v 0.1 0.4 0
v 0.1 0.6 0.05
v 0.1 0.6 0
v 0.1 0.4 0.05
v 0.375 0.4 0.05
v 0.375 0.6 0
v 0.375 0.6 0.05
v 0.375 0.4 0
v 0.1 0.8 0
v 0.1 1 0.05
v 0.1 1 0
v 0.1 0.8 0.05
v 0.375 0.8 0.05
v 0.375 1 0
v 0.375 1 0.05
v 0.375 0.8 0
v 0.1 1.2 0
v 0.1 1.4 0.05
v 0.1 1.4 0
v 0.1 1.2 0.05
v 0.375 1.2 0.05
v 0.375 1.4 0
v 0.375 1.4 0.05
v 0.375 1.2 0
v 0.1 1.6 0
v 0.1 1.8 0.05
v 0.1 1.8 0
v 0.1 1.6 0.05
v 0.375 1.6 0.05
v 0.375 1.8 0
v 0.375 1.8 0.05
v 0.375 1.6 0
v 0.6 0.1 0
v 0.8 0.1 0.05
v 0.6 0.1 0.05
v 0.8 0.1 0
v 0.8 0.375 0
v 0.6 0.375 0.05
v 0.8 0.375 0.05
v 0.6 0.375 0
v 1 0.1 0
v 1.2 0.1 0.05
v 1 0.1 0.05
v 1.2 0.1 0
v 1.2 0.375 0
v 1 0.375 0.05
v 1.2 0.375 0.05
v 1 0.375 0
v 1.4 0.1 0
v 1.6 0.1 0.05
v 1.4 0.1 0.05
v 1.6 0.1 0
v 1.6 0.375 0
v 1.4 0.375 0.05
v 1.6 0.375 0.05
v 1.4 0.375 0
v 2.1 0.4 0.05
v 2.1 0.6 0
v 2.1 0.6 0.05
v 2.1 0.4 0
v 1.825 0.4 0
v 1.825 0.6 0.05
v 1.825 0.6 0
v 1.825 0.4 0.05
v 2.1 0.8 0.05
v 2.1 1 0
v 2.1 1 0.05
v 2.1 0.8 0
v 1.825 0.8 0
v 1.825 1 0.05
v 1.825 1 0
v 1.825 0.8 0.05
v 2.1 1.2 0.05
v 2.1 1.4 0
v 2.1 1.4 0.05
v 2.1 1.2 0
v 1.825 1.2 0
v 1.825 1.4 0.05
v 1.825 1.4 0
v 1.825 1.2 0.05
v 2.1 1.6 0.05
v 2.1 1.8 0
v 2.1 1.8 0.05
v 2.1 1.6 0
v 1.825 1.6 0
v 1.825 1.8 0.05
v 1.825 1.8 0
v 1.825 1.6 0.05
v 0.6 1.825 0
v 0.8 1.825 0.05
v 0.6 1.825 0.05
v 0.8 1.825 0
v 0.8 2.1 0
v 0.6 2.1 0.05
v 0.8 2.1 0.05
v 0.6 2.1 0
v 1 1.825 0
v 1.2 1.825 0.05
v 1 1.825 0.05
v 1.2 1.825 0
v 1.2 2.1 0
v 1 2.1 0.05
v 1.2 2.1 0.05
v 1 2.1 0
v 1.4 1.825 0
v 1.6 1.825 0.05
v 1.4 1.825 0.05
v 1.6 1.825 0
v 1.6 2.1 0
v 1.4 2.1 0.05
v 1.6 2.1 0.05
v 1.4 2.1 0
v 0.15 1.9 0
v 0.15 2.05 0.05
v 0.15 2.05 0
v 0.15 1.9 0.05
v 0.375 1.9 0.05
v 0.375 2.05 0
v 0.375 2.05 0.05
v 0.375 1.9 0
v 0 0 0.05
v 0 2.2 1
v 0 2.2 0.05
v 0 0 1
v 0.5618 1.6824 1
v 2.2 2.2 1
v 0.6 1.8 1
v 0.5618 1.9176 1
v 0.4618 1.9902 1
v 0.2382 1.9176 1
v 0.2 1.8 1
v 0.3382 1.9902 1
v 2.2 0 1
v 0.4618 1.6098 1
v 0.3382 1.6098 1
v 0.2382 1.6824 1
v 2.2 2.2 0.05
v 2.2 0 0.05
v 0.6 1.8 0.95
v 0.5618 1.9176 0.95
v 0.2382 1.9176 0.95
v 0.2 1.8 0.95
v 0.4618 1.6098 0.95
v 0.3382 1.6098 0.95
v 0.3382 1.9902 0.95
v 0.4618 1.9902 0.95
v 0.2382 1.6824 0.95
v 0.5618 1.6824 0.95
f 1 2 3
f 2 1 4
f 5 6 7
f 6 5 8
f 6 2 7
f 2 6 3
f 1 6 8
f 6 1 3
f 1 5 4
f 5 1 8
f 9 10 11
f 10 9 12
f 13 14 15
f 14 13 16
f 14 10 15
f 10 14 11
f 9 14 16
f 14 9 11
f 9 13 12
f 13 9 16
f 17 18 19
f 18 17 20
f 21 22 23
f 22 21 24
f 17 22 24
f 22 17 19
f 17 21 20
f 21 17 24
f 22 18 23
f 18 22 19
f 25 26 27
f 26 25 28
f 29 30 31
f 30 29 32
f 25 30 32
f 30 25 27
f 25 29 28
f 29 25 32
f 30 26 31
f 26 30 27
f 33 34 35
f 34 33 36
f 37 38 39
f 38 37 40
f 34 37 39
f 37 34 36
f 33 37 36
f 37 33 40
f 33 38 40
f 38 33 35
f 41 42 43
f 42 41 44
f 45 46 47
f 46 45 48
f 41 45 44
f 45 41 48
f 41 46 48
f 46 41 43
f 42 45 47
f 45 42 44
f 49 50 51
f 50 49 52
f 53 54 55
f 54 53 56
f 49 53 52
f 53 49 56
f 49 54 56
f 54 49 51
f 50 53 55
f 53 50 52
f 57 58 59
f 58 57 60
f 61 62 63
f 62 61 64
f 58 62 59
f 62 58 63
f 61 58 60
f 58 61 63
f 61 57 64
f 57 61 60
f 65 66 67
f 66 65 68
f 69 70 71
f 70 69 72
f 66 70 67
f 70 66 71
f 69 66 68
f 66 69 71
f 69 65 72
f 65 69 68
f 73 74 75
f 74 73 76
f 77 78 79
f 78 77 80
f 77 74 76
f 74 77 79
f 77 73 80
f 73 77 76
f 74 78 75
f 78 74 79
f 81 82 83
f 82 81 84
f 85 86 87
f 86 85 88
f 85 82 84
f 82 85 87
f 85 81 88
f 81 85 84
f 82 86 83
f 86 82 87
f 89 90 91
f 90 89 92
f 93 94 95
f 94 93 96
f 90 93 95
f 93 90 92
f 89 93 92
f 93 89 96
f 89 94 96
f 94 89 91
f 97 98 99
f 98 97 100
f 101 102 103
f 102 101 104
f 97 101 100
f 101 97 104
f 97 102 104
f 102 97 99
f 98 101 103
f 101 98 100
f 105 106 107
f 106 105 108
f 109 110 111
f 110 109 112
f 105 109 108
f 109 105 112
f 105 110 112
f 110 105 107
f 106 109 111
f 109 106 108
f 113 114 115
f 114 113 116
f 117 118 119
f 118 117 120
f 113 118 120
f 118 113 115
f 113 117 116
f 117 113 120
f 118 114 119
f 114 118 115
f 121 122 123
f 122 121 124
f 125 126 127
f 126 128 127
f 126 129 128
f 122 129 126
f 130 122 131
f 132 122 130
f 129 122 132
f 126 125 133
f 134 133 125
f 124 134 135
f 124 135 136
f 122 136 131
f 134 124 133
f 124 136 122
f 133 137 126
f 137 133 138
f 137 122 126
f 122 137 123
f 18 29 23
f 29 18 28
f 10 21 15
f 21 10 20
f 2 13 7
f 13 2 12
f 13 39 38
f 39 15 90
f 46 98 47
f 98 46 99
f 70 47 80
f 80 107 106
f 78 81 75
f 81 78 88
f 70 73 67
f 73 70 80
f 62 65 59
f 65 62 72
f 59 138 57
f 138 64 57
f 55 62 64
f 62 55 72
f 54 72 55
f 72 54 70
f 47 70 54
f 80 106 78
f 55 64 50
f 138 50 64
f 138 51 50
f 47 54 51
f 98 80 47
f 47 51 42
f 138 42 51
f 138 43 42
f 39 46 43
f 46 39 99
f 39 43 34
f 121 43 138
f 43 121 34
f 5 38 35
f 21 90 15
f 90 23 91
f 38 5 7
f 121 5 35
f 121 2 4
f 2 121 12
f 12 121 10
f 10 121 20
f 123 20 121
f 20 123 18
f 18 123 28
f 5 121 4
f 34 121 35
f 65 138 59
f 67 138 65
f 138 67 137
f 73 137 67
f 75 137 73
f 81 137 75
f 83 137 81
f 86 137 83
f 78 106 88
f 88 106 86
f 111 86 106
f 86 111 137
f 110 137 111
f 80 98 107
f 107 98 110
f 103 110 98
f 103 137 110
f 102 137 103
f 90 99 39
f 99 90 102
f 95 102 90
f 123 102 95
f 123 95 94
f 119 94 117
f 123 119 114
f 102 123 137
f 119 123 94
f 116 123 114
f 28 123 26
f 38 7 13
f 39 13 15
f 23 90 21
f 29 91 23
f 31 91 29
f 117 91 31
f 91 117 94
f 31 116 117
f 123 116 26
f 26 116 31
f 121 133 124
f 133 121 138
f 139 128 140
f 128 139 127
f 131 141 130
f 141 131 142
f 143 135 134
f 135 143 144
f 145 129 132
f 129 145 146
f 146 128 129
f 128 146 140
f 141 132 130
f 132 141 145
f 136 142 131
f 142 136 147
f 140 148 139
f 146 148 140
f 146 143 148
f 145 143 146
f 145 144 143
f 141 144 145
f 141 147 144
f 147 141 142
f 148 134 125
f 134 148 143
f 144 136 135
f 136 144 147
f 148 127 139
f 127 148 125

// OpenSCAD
off = 0.1;

module pin()
{
    translate([0,-0.1,0])
        cube([0.275,0.2,0.1], center=false);
}

module pins_array(_cnt, _distance)
{
	if (_cnt>0)
	{
		for (_i = [0:_cnt-1])
		{
			translate([0,_distance*_i,0])
				pin();
		}
	}
}

difference()
{
union()
{
    // Left pins
    translate([0.1,-0.6 + 1.1,0])
        pins_array(4,0.4);

    // Bottom pins
    translate([1.1 - 0.4,0.1,0])
        mirror([1,0,0])
            rotate([0,0,90])
                pins_array(3,0.4);

    // Right pins
    translate([2.2-0.1,-0.6+1.1,0])
        mirror([1,0,0])
            pins_array(4,0.4);

    // top pins
    translate([1.1-0.4,2.2-0.275-0.1,0])
        mirror([1,0,0])
            rotate([0,0,90])
                pins_array(3,0.4);
    
    translate([0.375-0.225,2.2-0.15-0.15,0])
    cube([0.225,0.15,0.1], center=false);

    // Case
    translate([0,0,0.05])
    cube([2.2,2.2,0.95], center=false);

}
translate([0.4,2.2-0.4,0.95])
cylinder(r=0.2,h=0.1,$fn=10);
}
